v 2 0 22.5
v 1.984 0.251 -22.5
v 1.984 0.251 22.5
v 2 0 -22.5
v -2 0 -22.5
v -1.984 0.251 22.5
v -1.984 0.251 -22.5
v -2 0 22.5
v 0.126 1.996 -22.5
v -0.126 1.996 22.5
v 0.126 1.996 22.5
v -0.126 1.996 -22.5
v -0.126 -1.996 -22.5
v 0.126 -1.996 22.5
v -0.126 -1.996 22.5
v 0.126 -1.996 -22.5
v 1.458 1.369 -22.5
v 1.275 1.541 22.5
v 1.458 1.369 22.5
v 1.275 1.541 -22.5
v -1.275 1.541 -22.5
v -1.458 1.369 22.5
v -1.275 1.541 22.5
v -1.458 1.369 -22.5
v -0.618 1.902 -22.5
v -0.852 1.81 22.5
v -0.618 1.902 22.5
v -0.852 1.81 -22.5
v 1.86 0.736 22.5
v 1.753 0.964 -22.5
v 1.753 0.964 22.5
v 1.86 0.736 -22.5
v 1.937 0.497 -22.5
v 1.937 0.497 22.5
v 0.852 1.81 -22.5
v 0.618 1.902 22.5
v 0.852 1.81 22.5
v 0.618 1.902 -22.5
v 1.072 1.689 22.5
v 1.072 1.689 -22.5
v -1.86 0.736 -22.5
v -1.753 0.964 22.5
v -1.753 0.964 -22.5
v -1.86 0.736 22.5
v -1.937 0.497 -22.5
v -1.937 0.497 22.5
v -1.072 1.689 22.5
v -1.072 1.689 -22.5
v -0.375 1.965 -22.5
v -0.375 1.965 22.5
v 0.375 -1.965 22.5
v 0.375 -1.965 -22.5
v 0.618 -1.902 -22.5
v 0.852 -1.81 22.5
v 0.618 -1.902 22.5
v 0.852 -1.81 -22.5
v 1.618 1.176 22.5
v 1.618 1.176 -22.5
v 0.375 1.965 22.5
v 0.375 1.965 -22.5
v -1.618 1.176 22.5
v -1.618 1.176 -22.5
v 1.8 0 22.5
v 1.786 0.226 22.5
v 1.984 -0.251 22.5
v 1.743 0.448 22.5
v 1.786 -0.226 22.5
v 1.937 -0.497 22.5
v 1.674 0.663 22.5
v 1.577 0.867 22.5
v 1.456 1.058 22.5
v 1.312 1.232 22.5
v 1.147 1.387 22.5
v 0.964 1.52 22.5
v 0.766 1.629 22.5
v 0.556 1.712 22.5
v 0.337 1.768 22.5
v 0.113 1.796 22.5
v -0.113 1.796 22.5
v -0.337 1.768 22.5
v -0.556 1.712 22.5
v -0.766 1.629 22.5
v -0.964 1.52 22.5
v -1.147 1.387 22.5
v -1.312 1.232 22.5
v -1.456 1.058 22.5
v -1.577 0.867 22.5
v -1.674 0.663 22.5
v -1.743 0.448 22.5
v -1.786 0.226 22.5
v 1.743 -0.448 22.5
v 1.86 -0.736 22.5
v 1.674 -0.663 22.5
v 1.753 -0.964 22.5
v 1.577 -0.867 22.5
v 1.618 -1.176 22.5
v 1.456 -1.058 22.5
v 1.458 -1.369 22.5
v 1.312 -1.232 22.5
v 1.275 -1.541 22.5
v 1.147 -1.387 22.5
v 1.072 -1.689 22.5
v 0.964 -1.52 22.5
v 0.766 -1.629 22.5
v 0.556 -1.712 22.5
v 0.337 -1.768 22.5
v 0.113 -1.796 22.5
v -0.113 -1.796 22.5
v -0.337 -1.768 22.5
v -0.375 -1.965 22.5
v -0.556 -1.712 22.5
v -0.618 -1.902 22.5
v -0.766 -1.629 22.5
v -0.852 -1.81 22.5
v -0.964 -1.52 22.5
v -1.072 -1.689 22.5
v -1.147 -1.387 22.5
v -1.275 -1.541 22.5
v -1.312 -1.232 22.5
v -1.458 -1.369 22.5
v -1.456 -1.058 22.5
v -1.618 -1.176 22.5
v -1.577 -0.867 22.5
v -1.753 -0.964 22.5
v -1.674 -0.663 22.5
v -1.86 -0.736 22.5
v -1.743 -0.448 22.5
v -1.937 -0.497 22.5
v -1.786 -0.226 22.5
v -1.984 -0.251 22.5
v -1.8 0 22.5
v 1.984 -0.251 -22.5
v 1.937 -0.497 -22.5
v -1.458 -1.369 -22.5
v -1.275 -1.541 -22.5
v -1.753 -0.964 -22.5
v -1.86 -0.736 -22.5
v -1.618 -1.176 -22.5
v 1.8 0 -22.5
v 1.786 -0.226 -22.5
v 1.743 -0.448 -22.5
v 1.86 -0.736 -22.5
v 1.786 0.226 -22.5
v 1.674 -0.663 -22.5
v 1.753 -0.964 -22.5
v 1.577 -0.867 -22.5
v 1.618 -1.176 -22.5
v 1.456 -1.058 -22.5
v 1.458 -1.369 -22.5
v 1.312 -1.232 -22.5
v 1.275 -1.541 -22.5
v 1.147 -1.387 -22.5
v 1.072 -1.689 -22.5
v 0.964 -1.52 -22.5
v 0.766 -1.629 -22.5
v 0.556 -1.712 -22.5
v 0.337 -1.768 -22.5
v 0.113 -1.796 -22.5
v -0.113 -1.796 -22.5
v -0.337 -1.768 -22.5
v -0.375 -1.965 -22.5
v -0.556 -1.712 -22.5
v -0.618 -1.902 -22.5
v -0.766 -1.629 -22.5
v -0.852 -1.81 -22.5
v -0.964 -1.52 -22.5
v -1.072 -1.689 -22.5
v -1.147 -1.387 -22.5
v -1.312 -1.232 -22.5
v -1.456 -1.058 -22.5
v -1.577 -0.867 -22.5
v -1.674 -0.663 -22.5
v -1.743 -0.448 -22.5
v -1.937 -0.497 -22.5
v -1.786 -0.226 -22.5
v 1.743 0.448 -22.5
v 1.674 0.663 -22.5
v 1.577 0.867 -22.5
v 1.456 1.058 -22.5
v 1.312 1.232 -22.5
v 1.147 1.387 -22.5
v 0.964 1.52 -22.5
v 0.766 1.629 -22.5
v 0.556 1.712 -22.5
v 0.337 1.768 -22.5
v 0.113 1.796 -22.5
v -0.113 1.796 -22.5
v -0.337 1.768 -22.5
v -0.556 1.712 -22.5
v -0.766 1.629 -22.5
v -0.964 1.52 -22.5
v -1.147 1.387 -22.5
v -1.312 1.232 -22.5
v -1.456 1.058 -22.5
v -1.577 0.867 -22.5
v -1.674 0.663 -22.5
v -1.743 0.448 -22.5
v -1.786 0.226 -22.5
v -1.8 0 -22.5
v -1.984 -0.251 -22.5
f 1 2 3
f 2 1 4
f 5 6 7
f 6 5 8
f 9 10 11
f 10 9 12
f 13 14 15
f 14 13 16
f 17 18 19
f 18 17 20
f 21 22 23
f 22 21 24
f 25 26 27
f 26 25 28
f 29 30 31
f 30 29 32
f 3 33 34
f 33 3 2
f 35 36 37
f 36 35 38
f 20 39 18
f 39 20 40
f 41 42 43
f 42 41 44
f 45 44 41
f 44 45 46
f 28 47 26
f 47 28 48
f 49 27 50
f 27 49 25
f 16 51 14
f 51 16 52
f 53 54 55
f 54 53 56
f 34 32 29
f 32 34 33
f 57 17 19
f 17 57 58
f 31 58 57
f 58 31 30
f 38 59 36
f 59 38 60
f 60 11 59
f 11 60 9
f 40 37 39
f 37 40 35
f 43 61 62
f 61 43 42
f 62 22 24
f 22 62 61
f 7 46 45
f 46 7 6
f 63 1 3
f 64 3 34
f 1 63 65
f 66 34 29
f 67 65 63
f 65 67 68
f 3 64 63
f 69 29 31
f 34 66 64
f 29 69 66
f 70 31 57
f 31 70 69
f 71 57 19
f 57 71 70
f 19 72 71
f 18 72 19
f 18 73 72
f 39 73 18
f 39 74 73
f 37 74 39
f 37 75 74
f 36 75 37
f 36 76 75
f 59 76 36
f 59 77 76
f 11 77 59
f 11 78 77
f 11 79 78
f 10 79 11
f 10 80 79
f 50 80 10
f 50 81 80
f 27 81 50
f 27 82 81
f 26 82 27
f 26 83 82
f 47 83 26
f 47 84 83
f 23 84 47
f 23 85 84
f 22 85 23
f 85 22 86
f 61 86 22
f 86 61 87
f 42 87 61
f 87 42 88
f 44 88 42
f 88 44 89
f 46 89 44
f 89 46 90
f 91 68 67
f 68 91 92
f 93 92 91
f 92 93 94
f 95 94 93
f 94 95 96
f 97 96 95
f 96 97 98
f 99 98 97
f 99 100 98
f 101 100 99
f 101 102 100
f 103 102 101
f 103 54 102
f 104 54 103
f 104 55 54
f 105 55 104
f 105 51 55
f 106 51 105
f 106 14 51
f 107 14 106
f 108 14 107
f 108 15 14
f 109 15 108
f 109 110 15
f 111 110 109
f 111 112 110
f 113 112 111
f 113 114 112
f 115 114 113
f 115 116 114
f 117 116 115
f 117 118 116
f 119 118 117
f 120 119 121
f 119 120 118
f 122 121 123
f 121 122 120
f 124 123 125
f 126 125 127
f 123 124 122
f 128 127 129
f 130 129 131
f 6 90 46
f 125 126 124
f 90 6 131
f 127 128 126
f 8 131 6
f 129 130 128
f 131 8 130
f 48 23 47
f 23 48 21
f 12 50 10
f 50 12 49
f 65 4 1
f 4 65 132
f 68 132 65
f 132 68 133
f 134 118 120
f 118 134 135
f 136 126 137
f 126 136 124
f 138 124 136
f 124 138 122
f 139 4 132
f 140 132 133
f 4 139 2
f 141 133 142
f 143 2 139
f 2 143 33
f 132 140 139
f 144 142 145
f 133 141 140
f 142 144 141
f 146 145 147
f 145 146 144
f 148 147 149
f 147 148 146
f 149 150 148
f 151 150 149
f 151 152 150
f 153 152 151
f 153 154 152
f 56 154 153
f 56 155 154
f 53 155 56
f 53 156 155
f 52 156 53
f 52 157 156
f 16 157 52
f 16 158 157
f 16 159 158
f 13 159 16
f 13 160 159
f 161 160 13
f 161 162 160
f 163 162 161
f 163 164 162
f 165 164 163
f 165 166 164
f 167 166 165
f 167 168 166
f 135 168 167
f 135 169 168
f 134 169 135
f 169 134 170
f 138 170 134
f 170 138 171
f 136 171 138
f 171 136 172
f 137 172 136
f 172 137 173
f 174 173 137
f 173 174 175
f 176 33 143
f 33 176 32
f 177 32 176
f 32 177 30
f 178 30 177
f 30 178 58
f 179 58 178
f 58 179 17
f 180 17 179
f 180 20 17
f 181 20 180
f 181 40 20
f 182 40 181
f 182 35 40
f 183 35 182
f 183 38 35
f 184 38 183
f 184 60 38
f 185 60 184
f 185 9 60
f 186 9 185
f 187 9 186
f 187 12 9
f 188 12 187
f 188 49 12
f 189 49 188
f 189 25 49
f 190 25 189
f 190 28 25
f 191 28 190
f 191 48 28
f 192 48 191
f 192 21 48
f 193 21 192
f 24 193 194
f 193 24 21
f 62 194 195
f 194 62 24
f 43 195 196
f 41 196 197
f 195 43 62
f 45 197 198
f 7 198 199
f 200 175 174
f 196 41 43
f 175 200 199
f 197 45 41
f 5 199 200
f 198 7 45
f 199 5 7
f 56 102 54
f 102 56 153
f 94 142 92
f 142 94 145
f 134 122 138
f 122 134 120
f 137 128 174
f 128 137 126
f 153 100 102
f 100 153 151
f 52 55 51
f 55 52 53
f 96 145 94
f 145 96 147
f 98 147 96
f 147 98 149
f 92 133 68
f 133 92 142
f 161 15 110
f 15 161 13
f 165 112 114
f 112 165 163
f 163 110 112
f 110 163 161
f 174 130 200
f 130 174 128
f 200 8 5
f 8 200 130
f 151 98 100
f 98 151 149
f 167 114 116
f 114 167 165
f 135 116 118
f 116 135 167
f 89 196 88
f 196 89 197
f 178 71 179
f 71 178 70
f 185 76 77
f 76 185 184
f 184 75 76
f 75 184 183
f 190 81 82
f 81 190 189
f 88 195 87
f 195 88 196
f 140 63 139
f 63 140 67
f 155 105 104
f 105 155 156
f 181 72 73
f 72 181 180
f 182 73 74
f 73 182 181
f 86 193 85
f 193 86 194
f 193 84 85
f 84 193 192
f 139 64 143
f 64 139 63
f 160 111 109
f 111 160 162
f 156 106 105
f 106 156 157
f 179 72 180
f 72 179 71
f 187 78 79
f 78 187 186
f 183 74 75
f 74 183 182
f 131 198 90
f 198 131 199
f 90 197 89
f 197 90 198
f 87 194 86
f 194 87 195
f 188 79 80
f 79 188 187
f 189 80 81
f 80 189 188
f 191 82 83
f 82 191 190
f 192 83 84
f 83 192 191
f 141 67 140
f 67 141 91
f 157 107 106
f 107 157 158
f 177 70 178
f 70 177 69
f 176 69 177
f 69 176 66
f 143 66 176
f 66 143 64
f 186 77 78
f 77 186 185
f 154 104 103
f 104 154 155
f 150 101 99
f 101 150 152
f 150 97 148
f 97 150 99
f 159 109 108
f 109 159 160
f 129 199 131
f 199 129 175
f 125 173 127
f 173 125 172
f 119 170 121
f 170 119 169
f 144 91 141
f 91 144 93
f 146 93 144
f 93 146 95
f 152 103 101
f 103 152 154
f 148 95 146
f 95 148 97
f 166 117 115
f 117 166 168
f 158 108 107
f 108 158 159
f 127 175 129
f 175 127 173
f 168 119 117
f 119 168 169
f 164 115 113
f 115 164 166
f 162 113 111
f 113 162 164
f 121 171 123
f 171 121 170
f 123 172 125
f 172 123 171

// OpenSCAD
$fn = 50;


difference() {
	union() {
		translate(v = [0, 0, -22.5000000000]) {
			cylinder(h = 45, r = 2.0000000000);
		}
	}
	union() {
		translate(v = [0, 0, -100.0000000000]) {
			cylinder(h = 200, r = 1.8000000000);
		}
	}
}
